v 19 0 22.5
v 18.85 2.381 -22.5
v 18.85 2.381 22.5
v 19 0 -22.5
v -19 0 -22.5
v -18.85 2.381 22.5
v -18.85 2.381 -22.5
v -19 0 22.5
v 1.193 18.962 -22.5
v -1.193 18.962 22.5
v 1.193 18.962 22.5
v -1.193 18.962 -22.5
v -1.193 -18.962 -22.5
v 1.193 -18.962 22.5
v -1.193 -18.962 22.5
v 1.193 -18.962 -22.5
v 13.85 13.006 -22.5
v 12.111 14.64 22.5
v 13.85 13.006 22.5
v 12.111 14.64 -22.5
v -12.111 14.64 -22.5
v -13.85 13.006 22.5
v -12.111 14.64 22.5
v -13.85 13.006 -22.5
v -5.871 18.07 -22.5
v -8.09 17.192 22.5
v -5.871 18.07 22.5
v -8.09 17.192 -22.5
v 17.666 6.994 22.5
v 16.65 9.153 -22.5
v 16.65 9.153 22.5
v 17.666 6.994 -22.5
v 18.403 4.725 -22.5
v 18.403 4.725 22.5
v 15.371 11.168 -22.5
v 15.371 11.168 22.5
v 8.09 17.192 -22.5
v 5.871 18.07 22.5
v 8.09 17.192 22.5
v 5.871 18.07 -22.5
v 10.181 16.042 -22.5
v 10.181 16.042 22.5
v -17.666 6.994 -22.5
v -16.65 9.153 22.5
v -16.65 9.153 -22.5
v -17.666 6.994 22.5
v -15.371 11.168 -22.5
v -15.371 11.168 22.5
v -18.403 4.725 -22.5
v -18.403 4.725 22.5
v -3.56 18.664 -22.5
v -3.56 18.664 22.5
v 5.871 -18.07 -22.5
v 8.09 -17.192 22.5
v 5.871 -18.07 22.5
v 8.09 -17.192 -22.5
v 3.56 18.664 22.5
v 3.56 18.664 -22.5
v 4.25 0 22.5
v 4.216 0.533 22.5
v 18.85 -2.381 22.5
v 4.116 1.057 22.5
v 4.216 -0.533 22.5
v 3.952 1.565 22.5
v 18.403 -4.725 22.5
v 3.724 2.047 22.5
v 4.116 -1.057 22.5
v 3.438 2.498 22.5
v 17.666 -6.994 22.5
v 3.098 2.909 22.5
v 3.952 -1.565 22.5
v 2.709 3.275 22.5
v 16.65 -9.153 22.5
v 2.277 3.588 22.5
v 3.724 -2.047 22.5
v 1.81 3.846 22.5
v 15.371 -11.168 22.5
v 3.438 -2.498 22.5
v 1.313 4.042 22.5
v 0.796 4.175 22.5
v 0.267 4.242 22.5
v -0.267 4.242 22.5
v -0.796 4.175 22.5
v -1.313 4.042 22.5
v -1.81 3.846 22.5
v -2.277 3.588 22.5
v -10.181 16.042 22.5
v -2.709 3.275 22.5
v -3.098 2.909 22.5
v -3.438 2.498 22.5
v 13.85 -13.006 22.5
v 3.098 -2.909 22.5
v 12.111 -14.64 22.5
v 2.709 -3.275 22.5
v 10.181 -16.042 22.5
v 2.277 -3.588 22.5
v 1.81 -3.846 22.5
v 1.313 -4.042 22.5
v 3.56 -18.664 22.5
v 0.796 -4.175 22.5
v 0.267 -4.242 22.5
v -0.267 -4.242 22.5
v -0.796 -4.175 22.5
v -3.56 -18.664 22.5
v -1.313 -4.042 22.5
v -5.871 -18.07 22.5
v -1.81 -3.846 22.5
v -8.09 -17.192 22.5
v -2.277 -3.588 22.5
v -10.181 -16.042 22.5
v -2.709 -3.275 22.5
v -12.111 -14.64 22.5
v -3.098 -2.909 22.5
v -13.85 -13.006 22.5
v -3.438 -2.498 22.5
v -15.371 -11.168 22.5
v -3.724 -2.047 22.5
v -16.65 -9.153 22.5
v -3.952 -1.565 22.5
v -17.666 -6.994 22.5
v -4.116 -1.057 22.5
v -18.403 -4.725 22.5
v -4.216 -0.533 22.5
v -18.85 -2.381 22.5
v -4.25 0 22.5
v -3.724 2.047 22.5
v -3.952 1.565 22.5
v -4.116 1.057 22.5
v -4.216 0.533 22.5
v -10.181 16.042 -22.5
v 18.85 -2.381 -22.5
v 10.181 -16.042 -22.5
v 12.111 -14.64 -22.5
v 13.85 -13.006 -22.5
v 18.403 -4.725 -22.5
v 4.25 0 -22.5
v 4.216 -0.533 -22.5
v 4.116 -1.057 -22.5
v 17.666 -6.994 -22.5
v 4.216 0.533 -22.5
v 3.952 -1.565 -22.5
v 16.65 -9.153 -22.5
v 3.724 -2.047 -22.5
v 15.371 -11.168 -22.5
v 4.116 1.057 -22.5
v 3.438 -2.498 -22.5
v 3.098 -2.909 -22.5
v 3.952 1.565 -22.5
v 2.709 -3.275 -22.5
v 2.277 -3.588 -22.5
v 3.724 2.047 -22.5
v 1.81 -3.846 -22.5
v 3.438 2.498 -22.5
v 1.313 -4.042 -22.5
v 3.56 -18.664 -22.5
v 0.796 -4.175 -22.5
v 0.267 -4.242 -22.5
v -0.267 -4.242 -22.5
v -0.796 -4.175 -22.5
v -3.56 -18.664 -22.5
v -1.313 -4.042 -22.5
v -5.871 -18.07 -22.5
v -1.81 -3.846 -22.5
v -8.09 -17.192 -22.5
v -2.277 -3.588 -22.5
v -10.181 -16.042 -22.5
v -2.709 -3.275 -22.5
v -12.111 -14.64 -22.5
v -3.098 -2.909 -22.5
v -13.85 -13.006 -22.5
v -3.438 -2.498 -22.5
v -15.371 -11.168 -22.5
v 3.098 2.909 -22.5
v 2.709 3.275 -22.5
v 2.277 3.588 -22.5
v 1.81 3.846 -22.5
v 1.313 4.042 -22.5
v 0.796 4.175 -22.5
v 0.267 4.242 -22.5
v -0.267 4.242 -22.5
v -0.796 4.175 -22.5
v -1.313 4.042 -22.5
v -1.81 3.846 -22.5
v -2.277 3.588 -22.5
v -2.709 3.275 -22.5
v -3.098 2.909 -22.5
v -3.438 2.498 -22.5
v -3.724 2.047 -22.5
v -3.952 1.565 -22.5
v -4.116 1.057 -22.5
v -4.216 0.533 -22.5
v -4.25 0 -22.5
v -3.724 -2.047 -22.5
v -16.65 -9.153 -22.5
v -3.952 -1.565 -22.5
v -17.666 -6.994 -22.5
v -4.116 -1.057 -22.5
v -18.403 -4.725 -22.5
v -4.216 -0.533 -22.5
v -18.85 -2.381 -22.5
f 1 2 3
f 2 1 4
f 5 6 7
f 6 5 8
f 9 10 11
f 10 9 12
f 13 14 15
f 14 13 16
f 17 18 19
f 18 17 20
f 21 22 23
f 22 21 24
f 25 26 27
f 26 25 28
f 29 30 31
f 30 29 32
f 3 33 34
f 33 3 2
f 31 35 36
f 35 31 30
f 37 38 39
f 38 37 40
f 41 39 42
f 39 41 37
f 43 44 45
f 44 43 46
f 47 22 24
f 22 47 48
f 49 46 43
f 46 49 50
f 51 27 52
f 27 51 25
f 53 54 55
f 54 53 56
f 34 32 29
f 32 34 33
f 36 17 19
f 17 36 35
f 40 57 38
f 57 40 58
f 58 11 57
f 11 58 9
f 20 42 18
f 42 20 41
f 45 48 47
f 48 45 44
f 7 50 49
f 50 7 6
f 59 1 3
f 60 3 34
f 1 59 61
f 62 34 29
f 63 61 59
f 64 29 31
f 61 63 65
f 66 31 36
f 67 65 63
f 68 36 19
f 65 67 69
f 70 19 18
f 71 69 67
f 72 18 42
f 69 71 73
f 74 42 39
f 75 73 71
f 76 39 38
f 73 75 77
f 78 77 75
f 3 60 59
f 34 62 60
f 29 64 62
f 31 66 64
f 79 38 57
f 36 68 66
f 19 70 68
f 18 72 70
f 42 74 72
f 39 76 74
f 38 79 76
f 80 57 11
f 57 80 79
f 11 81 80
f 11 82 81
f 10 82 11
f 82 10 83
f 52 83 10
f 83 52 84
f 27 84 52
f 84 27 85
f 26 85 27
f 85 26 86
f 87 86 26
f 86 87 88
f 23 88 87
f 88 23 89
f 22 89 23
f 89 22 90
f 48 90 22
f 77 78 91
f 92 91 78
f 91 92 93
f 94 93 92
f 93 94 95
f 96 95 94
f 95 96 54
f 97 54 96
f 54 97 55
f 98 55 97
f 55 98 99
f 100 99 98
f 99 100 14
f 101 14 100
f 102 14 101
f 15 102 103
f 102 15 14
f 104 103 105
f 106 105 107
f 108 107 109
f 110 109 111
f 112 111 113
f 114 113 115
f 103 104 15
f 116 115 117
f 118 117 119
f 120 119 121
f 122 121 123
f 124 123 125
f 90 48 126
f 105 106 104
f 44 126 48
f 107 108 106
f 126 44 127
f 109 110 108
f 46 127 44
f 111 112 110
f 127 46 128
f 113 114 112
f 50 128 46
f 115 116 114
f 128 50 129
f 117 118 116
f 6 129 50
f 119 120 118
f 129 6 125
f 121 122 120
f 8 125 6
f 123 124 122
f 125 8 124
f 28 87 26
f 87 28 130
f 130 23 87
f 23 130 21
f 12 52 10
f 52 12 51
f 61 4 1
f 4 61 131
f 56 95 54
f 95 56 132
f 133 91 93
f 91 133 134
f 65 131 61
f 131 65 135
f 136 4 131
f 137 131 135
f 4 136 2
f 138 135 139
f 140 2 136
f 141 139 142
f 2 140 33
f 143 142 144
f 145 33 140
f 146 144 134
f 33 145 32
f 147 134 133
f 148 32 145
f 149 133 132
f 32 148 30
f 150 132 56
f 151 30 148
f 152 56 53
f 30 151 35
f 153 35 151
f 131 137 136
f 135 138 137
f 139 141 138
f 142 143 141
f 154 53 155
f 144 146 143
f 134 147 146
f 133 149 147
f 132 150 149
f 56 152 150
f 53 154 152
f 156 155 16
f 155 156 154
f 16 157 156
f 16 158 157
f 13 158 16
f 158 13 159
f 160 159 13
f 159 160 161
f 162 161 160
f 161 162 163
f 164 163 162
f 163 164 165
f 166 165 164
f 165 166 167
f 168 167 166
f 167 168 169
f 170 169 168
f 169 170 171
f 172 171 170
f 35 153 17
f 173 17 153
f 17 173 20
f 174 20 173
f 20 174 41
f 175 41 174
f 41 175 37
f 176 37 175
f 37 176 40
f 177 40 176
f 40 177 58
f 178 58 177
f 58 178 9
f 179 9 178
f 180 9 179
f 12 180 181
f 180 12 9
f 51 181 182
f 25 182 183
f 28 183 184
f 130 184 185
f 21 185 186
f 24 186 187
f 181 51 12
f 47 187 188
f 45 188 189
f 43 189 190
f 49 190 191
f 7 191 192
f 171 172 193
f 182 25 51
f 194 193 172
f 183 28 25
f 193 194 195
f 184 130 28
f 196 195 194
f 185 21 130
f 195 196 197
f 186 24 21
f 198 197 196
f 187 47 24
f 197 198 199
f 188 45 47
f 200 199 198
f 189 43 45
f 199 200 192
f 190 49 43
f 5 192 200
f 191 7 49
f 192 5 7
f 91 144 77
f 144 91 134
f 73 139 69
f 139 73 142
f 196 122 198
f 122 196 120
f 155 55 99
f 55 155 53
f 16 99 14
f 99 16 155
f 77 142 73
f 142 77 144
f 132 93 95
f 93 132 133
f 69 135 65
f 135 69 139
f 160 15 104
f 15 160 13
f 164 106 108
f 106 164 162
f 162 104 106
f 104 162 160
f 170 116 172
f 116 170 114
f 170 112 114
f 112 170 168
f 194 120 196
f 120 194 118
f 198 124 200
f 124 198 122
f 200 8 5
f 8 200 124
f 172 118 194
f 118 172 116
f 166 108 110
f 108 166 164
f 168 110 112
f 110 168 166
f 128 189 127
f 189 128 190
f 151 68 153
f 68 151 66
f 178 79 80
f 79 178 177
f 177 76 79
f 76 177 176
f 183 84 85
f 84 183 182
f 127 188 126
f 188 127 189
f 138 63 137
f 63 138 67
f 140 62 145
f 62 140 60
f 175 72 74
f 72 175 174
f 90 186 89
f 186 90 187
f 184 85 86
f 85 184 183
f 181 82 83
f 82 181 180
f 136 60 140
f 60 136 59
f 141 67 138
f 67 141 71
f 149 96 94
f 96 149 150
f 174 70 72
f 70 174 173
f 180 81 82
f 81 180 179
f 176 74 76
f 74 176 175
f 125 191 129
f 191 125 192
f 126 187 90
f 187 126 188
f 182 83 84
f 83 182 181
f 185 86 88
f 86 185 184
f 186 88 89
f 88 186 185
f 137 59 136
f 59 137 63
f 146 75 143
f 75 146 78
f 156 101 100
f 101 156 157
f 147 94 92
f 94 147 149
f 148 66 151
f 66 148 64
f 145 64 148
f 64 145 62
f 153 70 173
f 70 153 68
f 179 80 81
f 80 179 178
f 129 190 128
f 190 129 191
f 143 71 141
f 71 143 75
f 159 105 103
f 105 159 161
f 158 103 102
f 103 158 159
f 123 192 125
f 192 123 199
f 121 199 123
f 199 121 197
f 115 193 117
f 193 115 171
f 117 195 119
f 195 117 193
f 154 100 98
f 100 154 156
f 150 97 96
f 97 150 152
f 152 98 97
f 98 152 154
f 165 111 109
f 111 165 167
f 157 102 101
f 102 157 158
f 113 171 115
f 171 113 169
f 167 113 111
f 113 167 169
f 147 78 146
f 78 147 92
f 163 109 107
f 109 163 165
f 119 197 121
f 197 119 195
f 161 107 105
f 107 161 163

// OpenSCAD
$fn = 50;


difference() {
	union() {
		translate(v = [0, 0, -22.5000000000]) {
			cylinder(h = 45, r = 19.0000000000);
		}
	}
	union() {
		translate(v = [0, 0, -100.0000000000]) {
			cylinder(h = 200, r = 4.2500000000);
		}
	}
}
